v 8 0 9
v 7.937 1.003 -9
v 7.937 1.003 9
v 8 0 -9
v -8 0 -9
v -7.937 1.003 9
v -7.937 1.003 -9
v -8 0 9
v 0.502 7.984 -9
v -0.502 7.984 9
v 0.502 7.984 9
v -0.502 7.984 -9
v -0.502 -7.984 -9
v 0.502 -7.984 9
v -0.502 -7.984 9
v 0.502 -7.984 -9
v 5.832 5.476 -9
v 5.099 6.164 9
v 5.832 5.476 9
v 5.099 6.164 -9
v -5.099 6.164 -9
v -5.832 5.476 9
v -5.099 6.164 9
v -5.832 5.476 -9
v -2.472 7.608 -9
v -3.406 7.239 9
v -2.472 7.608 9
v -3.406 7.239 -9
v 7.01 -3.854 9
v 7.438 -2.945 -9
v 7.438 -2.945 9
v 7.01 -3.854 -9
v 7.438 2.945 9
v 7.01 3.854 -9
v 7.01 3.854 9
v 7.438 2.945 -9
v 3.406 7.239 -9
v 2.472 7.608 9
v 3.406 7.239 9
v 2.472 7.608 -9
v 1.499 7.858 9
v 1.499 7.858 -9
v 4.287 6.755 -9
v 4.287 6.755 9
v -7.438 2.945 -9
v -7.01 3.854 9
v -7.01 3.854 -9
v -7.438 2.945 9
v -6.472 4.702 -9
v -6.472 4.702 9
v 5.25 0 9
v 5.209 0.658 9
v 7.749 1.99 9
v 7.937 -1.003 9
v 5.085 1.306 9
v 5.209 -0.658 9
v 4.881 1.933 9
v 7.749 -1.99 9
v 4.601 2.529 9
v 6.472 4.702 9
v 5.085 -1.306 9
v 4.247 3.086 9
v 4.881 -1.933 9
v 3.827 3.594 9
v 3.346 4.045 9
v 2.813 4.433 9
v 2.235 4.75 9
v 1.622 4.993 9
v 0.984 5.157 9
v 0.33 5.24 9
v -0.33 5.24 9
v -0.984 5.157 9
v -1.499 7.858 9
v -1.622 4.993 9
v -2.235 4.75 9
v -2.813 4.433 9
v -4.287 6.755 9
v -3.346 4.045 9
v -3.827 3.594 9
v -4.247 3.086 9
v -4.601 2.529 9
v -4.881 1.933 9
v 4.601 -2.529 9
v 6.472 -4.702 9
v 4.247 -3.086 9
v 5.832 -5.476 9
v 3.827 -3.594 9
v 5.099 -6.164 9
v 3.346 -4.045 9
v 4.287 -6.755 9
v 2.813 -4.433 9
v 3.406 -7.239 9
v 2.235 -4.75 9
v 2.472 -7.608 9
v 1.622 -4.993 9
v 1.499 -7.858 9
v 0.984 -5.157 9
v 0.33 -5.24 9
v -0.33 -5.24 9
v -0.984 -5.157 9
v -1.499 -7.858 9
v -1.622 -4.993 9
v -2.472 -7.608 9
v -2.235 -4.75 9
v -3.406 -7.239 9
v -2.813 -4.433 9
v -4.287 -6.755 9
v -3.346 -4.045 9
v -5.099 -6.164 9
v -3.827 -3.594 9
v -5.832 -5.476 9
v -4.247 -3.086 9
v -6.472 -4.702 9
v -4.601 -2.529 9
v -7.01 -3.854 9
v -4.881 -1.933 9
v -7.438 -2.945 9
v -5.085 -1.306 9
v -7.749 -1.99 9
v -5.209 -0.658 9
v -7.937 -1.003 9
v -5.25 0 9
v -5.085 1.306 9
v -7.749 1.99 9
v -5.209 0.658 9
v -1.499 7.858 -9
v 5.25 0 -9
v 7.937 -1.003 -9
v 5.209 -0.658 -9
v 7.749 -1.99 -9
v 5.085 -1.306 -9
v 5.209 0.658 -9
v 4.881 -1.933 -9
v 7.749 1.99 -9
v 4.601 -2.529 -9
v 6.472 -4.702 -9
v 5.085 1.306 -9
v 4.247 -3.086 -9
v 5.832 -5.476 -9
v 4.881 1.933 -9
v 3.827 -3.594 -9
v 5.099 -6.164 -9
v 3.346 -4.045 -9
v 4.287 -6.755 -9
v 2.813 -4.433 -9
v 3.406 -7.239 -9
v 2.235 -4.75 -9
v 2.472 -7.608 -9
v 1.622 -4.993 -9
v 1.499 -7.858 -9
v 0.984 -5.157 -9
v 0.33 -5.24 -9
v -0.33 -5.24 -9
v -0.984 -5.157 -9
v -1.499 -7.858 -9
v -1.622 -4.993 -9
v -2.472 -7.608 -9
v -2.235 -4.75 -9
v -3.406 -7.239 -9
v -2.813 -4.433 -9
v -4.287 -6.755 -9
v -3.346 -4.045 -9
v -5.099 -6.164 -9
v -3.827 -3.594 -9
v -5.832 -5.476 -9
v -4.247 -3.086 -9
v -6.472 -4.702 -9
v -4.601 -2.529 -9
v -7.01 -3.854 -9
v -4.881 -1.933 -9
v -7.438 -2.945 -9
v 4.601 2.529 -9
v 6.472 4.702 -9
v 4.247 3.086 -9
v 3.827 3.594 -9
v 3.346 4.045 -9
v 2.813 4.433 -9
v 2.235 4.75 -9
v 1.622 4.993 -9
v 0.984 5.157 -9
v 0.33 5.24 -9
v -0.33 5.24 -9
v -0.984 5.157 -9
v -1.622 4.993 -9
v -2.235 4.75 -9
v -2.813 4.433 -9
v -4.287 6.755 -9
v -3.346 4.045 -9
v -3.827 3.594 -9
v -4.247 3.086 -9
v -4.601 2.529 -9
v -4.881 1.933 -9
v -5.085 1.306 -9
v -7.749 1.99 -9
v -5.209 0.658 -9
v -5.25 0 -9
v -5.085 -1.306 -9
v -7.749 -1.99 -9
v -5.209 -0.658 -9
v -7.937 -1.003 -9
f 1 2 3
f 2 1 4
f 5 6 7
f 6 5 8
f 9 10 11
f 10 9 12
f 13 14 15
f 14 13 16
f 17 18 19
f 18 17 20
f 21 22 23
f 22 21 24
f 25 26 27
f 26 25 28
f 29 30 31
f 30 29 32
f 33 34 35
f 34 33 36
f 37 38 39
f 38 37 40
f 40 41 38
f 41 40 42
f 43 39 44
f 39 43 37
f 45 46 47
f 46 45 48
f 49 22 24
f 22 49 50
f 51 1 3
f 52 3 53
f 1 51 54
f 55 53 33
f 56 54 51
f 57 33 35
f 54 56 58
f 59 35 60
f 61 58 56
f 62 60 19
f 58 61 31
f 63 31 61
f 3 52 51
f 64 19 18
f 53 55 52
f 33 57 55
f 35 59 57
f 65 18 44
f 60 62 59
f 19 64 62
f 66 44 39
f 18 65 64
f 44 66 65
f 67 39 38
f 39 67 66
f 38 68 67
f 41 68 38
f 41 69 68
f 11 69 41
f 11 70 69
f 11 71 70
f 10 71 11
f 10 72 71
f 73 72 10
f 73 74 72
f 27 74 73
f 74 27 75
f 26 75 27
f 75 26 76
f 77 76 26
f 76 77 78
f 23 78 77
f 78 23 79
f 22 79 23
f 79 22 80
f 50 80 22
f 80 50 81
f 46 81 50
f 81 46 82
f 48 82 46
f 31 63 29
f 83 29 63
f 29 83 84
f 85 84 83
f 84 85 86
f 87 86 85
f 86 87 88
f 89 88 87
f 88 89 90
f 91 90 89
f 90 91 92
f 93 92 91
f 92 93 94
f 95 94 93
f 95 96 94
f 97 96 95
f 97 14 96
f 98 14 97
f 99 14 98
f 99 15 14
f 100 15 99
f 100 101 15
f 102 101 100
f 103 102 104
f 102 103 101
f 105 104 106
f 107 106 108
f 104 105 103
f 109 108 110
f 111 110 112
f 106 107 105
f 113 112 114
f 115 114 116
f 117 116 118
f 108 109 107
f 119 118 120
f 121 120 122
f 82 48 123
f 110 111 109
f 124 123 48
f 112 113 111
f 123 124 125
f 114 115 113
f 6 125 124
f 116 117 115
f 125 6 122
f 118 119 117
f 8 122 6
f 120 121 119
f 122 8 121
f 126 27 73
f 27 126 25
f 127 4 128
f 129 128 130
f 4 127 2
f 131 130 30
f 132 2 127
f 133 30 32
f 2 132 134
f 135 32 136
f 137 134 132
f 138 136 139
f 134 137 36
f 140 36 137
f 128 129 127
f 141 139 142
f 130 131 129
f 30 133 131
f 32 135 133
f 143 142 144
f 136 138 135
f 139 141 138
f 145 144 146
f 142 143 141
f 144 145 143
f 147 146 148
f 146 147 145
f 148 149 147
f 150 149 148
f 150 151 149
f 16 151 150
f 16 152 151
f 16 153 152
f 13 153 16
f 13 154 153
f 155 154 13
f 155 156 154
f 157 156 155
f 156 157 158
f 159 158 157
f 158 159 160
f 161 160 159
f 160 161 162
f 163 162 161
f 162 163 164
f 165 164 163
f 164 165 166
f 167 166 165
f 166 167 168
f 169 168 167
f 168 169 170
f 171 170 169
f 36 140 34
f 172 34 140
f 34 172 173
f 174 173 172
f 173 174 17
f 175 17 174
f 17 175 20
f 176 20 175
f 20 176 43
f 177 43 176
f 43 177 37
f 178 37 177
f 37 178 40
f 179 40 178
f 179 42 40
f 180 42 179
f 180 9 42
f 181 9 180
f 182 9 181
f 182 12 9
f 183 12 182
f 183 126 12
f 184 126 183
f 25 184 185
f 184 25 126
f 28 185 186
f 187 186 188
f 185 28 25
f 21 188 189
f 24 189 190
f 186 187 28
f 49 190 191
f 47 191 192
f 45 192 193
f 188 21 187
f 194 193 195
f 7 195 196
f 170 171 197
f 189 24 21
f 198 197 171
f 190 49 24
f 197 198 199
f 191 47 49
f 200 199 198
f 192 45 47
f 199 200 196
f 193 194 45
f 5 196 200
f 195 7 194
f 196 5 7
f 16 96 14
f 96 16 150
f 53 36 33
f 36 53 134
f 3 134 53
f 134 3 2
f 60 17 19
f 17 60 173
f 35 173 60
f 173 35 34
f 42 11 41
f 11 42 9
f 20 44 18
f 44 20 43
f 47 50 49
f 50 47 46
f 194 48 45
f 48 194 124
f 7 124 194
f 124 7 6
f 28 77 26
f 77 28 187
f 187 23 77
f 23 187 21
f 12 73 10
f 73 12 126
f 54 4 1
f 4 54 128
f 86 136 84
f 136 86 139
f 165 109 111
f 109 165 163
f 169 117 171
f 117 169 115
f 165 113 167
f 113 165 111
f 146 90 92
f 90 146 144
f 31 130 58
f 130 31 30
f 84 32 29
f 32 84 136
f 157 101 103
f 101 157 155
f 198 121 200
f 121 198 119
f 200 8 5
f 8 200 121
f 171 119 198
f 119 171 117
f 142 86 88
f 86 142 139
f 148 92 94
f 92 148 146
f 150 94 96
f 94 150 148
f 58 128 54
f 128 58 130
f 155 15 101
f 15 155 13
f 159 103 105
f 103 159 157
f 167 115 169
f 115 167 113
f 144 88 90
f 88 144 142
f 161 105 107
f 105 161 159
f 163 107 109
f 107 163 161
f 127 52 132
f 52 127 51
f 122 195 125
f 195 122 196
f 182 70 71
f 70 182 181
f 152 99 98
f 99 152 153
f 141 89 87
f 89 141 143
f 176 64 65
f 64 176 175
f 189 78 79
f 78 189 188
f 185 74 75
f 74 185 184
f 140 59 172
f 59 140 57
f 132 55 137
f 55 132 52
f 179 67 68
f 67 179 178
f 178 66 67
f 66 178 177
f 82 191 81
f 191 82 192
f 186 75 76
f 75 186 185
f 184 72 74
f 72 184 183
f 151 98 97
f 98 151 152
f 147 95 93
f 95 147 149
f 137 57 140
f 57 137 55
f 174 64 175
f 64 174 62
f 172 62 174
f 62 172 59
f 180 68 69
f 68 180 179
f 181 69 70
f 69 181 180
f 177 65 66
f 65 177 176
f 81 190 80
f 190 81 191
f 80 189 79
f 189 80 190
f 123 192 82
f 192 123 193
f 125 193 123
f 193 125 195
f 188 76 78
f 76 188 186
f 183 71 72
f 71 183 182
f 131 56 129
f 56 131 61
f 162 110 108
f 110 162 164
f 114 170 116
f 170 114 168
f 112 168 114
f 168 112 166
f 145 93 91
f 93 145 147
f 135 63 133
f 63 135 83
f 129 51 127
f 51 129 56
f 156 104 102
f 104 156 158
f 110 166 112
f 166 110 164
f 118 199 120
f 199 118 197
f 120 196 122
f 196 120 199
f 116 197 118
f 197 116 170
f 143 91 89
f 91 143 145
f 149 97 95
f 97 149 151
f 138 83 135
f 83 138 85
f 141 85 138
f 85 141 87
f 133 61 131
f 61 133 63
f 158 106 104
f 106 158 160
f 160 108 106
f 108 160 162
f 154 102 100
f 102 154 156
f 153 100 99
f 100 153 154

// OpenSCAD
$fn = 50;


difference() {
	union() {
		translate(v = [0, 0, -9.0000000000]) {
			cylinder(h = 18, r = 8.0000000000);
		}
	}
	union() {
		translate(v = [0, 0, -100.0000000000]) {
			cylinder(h = 200, r = 5.2500000000);
		}
	}
}
